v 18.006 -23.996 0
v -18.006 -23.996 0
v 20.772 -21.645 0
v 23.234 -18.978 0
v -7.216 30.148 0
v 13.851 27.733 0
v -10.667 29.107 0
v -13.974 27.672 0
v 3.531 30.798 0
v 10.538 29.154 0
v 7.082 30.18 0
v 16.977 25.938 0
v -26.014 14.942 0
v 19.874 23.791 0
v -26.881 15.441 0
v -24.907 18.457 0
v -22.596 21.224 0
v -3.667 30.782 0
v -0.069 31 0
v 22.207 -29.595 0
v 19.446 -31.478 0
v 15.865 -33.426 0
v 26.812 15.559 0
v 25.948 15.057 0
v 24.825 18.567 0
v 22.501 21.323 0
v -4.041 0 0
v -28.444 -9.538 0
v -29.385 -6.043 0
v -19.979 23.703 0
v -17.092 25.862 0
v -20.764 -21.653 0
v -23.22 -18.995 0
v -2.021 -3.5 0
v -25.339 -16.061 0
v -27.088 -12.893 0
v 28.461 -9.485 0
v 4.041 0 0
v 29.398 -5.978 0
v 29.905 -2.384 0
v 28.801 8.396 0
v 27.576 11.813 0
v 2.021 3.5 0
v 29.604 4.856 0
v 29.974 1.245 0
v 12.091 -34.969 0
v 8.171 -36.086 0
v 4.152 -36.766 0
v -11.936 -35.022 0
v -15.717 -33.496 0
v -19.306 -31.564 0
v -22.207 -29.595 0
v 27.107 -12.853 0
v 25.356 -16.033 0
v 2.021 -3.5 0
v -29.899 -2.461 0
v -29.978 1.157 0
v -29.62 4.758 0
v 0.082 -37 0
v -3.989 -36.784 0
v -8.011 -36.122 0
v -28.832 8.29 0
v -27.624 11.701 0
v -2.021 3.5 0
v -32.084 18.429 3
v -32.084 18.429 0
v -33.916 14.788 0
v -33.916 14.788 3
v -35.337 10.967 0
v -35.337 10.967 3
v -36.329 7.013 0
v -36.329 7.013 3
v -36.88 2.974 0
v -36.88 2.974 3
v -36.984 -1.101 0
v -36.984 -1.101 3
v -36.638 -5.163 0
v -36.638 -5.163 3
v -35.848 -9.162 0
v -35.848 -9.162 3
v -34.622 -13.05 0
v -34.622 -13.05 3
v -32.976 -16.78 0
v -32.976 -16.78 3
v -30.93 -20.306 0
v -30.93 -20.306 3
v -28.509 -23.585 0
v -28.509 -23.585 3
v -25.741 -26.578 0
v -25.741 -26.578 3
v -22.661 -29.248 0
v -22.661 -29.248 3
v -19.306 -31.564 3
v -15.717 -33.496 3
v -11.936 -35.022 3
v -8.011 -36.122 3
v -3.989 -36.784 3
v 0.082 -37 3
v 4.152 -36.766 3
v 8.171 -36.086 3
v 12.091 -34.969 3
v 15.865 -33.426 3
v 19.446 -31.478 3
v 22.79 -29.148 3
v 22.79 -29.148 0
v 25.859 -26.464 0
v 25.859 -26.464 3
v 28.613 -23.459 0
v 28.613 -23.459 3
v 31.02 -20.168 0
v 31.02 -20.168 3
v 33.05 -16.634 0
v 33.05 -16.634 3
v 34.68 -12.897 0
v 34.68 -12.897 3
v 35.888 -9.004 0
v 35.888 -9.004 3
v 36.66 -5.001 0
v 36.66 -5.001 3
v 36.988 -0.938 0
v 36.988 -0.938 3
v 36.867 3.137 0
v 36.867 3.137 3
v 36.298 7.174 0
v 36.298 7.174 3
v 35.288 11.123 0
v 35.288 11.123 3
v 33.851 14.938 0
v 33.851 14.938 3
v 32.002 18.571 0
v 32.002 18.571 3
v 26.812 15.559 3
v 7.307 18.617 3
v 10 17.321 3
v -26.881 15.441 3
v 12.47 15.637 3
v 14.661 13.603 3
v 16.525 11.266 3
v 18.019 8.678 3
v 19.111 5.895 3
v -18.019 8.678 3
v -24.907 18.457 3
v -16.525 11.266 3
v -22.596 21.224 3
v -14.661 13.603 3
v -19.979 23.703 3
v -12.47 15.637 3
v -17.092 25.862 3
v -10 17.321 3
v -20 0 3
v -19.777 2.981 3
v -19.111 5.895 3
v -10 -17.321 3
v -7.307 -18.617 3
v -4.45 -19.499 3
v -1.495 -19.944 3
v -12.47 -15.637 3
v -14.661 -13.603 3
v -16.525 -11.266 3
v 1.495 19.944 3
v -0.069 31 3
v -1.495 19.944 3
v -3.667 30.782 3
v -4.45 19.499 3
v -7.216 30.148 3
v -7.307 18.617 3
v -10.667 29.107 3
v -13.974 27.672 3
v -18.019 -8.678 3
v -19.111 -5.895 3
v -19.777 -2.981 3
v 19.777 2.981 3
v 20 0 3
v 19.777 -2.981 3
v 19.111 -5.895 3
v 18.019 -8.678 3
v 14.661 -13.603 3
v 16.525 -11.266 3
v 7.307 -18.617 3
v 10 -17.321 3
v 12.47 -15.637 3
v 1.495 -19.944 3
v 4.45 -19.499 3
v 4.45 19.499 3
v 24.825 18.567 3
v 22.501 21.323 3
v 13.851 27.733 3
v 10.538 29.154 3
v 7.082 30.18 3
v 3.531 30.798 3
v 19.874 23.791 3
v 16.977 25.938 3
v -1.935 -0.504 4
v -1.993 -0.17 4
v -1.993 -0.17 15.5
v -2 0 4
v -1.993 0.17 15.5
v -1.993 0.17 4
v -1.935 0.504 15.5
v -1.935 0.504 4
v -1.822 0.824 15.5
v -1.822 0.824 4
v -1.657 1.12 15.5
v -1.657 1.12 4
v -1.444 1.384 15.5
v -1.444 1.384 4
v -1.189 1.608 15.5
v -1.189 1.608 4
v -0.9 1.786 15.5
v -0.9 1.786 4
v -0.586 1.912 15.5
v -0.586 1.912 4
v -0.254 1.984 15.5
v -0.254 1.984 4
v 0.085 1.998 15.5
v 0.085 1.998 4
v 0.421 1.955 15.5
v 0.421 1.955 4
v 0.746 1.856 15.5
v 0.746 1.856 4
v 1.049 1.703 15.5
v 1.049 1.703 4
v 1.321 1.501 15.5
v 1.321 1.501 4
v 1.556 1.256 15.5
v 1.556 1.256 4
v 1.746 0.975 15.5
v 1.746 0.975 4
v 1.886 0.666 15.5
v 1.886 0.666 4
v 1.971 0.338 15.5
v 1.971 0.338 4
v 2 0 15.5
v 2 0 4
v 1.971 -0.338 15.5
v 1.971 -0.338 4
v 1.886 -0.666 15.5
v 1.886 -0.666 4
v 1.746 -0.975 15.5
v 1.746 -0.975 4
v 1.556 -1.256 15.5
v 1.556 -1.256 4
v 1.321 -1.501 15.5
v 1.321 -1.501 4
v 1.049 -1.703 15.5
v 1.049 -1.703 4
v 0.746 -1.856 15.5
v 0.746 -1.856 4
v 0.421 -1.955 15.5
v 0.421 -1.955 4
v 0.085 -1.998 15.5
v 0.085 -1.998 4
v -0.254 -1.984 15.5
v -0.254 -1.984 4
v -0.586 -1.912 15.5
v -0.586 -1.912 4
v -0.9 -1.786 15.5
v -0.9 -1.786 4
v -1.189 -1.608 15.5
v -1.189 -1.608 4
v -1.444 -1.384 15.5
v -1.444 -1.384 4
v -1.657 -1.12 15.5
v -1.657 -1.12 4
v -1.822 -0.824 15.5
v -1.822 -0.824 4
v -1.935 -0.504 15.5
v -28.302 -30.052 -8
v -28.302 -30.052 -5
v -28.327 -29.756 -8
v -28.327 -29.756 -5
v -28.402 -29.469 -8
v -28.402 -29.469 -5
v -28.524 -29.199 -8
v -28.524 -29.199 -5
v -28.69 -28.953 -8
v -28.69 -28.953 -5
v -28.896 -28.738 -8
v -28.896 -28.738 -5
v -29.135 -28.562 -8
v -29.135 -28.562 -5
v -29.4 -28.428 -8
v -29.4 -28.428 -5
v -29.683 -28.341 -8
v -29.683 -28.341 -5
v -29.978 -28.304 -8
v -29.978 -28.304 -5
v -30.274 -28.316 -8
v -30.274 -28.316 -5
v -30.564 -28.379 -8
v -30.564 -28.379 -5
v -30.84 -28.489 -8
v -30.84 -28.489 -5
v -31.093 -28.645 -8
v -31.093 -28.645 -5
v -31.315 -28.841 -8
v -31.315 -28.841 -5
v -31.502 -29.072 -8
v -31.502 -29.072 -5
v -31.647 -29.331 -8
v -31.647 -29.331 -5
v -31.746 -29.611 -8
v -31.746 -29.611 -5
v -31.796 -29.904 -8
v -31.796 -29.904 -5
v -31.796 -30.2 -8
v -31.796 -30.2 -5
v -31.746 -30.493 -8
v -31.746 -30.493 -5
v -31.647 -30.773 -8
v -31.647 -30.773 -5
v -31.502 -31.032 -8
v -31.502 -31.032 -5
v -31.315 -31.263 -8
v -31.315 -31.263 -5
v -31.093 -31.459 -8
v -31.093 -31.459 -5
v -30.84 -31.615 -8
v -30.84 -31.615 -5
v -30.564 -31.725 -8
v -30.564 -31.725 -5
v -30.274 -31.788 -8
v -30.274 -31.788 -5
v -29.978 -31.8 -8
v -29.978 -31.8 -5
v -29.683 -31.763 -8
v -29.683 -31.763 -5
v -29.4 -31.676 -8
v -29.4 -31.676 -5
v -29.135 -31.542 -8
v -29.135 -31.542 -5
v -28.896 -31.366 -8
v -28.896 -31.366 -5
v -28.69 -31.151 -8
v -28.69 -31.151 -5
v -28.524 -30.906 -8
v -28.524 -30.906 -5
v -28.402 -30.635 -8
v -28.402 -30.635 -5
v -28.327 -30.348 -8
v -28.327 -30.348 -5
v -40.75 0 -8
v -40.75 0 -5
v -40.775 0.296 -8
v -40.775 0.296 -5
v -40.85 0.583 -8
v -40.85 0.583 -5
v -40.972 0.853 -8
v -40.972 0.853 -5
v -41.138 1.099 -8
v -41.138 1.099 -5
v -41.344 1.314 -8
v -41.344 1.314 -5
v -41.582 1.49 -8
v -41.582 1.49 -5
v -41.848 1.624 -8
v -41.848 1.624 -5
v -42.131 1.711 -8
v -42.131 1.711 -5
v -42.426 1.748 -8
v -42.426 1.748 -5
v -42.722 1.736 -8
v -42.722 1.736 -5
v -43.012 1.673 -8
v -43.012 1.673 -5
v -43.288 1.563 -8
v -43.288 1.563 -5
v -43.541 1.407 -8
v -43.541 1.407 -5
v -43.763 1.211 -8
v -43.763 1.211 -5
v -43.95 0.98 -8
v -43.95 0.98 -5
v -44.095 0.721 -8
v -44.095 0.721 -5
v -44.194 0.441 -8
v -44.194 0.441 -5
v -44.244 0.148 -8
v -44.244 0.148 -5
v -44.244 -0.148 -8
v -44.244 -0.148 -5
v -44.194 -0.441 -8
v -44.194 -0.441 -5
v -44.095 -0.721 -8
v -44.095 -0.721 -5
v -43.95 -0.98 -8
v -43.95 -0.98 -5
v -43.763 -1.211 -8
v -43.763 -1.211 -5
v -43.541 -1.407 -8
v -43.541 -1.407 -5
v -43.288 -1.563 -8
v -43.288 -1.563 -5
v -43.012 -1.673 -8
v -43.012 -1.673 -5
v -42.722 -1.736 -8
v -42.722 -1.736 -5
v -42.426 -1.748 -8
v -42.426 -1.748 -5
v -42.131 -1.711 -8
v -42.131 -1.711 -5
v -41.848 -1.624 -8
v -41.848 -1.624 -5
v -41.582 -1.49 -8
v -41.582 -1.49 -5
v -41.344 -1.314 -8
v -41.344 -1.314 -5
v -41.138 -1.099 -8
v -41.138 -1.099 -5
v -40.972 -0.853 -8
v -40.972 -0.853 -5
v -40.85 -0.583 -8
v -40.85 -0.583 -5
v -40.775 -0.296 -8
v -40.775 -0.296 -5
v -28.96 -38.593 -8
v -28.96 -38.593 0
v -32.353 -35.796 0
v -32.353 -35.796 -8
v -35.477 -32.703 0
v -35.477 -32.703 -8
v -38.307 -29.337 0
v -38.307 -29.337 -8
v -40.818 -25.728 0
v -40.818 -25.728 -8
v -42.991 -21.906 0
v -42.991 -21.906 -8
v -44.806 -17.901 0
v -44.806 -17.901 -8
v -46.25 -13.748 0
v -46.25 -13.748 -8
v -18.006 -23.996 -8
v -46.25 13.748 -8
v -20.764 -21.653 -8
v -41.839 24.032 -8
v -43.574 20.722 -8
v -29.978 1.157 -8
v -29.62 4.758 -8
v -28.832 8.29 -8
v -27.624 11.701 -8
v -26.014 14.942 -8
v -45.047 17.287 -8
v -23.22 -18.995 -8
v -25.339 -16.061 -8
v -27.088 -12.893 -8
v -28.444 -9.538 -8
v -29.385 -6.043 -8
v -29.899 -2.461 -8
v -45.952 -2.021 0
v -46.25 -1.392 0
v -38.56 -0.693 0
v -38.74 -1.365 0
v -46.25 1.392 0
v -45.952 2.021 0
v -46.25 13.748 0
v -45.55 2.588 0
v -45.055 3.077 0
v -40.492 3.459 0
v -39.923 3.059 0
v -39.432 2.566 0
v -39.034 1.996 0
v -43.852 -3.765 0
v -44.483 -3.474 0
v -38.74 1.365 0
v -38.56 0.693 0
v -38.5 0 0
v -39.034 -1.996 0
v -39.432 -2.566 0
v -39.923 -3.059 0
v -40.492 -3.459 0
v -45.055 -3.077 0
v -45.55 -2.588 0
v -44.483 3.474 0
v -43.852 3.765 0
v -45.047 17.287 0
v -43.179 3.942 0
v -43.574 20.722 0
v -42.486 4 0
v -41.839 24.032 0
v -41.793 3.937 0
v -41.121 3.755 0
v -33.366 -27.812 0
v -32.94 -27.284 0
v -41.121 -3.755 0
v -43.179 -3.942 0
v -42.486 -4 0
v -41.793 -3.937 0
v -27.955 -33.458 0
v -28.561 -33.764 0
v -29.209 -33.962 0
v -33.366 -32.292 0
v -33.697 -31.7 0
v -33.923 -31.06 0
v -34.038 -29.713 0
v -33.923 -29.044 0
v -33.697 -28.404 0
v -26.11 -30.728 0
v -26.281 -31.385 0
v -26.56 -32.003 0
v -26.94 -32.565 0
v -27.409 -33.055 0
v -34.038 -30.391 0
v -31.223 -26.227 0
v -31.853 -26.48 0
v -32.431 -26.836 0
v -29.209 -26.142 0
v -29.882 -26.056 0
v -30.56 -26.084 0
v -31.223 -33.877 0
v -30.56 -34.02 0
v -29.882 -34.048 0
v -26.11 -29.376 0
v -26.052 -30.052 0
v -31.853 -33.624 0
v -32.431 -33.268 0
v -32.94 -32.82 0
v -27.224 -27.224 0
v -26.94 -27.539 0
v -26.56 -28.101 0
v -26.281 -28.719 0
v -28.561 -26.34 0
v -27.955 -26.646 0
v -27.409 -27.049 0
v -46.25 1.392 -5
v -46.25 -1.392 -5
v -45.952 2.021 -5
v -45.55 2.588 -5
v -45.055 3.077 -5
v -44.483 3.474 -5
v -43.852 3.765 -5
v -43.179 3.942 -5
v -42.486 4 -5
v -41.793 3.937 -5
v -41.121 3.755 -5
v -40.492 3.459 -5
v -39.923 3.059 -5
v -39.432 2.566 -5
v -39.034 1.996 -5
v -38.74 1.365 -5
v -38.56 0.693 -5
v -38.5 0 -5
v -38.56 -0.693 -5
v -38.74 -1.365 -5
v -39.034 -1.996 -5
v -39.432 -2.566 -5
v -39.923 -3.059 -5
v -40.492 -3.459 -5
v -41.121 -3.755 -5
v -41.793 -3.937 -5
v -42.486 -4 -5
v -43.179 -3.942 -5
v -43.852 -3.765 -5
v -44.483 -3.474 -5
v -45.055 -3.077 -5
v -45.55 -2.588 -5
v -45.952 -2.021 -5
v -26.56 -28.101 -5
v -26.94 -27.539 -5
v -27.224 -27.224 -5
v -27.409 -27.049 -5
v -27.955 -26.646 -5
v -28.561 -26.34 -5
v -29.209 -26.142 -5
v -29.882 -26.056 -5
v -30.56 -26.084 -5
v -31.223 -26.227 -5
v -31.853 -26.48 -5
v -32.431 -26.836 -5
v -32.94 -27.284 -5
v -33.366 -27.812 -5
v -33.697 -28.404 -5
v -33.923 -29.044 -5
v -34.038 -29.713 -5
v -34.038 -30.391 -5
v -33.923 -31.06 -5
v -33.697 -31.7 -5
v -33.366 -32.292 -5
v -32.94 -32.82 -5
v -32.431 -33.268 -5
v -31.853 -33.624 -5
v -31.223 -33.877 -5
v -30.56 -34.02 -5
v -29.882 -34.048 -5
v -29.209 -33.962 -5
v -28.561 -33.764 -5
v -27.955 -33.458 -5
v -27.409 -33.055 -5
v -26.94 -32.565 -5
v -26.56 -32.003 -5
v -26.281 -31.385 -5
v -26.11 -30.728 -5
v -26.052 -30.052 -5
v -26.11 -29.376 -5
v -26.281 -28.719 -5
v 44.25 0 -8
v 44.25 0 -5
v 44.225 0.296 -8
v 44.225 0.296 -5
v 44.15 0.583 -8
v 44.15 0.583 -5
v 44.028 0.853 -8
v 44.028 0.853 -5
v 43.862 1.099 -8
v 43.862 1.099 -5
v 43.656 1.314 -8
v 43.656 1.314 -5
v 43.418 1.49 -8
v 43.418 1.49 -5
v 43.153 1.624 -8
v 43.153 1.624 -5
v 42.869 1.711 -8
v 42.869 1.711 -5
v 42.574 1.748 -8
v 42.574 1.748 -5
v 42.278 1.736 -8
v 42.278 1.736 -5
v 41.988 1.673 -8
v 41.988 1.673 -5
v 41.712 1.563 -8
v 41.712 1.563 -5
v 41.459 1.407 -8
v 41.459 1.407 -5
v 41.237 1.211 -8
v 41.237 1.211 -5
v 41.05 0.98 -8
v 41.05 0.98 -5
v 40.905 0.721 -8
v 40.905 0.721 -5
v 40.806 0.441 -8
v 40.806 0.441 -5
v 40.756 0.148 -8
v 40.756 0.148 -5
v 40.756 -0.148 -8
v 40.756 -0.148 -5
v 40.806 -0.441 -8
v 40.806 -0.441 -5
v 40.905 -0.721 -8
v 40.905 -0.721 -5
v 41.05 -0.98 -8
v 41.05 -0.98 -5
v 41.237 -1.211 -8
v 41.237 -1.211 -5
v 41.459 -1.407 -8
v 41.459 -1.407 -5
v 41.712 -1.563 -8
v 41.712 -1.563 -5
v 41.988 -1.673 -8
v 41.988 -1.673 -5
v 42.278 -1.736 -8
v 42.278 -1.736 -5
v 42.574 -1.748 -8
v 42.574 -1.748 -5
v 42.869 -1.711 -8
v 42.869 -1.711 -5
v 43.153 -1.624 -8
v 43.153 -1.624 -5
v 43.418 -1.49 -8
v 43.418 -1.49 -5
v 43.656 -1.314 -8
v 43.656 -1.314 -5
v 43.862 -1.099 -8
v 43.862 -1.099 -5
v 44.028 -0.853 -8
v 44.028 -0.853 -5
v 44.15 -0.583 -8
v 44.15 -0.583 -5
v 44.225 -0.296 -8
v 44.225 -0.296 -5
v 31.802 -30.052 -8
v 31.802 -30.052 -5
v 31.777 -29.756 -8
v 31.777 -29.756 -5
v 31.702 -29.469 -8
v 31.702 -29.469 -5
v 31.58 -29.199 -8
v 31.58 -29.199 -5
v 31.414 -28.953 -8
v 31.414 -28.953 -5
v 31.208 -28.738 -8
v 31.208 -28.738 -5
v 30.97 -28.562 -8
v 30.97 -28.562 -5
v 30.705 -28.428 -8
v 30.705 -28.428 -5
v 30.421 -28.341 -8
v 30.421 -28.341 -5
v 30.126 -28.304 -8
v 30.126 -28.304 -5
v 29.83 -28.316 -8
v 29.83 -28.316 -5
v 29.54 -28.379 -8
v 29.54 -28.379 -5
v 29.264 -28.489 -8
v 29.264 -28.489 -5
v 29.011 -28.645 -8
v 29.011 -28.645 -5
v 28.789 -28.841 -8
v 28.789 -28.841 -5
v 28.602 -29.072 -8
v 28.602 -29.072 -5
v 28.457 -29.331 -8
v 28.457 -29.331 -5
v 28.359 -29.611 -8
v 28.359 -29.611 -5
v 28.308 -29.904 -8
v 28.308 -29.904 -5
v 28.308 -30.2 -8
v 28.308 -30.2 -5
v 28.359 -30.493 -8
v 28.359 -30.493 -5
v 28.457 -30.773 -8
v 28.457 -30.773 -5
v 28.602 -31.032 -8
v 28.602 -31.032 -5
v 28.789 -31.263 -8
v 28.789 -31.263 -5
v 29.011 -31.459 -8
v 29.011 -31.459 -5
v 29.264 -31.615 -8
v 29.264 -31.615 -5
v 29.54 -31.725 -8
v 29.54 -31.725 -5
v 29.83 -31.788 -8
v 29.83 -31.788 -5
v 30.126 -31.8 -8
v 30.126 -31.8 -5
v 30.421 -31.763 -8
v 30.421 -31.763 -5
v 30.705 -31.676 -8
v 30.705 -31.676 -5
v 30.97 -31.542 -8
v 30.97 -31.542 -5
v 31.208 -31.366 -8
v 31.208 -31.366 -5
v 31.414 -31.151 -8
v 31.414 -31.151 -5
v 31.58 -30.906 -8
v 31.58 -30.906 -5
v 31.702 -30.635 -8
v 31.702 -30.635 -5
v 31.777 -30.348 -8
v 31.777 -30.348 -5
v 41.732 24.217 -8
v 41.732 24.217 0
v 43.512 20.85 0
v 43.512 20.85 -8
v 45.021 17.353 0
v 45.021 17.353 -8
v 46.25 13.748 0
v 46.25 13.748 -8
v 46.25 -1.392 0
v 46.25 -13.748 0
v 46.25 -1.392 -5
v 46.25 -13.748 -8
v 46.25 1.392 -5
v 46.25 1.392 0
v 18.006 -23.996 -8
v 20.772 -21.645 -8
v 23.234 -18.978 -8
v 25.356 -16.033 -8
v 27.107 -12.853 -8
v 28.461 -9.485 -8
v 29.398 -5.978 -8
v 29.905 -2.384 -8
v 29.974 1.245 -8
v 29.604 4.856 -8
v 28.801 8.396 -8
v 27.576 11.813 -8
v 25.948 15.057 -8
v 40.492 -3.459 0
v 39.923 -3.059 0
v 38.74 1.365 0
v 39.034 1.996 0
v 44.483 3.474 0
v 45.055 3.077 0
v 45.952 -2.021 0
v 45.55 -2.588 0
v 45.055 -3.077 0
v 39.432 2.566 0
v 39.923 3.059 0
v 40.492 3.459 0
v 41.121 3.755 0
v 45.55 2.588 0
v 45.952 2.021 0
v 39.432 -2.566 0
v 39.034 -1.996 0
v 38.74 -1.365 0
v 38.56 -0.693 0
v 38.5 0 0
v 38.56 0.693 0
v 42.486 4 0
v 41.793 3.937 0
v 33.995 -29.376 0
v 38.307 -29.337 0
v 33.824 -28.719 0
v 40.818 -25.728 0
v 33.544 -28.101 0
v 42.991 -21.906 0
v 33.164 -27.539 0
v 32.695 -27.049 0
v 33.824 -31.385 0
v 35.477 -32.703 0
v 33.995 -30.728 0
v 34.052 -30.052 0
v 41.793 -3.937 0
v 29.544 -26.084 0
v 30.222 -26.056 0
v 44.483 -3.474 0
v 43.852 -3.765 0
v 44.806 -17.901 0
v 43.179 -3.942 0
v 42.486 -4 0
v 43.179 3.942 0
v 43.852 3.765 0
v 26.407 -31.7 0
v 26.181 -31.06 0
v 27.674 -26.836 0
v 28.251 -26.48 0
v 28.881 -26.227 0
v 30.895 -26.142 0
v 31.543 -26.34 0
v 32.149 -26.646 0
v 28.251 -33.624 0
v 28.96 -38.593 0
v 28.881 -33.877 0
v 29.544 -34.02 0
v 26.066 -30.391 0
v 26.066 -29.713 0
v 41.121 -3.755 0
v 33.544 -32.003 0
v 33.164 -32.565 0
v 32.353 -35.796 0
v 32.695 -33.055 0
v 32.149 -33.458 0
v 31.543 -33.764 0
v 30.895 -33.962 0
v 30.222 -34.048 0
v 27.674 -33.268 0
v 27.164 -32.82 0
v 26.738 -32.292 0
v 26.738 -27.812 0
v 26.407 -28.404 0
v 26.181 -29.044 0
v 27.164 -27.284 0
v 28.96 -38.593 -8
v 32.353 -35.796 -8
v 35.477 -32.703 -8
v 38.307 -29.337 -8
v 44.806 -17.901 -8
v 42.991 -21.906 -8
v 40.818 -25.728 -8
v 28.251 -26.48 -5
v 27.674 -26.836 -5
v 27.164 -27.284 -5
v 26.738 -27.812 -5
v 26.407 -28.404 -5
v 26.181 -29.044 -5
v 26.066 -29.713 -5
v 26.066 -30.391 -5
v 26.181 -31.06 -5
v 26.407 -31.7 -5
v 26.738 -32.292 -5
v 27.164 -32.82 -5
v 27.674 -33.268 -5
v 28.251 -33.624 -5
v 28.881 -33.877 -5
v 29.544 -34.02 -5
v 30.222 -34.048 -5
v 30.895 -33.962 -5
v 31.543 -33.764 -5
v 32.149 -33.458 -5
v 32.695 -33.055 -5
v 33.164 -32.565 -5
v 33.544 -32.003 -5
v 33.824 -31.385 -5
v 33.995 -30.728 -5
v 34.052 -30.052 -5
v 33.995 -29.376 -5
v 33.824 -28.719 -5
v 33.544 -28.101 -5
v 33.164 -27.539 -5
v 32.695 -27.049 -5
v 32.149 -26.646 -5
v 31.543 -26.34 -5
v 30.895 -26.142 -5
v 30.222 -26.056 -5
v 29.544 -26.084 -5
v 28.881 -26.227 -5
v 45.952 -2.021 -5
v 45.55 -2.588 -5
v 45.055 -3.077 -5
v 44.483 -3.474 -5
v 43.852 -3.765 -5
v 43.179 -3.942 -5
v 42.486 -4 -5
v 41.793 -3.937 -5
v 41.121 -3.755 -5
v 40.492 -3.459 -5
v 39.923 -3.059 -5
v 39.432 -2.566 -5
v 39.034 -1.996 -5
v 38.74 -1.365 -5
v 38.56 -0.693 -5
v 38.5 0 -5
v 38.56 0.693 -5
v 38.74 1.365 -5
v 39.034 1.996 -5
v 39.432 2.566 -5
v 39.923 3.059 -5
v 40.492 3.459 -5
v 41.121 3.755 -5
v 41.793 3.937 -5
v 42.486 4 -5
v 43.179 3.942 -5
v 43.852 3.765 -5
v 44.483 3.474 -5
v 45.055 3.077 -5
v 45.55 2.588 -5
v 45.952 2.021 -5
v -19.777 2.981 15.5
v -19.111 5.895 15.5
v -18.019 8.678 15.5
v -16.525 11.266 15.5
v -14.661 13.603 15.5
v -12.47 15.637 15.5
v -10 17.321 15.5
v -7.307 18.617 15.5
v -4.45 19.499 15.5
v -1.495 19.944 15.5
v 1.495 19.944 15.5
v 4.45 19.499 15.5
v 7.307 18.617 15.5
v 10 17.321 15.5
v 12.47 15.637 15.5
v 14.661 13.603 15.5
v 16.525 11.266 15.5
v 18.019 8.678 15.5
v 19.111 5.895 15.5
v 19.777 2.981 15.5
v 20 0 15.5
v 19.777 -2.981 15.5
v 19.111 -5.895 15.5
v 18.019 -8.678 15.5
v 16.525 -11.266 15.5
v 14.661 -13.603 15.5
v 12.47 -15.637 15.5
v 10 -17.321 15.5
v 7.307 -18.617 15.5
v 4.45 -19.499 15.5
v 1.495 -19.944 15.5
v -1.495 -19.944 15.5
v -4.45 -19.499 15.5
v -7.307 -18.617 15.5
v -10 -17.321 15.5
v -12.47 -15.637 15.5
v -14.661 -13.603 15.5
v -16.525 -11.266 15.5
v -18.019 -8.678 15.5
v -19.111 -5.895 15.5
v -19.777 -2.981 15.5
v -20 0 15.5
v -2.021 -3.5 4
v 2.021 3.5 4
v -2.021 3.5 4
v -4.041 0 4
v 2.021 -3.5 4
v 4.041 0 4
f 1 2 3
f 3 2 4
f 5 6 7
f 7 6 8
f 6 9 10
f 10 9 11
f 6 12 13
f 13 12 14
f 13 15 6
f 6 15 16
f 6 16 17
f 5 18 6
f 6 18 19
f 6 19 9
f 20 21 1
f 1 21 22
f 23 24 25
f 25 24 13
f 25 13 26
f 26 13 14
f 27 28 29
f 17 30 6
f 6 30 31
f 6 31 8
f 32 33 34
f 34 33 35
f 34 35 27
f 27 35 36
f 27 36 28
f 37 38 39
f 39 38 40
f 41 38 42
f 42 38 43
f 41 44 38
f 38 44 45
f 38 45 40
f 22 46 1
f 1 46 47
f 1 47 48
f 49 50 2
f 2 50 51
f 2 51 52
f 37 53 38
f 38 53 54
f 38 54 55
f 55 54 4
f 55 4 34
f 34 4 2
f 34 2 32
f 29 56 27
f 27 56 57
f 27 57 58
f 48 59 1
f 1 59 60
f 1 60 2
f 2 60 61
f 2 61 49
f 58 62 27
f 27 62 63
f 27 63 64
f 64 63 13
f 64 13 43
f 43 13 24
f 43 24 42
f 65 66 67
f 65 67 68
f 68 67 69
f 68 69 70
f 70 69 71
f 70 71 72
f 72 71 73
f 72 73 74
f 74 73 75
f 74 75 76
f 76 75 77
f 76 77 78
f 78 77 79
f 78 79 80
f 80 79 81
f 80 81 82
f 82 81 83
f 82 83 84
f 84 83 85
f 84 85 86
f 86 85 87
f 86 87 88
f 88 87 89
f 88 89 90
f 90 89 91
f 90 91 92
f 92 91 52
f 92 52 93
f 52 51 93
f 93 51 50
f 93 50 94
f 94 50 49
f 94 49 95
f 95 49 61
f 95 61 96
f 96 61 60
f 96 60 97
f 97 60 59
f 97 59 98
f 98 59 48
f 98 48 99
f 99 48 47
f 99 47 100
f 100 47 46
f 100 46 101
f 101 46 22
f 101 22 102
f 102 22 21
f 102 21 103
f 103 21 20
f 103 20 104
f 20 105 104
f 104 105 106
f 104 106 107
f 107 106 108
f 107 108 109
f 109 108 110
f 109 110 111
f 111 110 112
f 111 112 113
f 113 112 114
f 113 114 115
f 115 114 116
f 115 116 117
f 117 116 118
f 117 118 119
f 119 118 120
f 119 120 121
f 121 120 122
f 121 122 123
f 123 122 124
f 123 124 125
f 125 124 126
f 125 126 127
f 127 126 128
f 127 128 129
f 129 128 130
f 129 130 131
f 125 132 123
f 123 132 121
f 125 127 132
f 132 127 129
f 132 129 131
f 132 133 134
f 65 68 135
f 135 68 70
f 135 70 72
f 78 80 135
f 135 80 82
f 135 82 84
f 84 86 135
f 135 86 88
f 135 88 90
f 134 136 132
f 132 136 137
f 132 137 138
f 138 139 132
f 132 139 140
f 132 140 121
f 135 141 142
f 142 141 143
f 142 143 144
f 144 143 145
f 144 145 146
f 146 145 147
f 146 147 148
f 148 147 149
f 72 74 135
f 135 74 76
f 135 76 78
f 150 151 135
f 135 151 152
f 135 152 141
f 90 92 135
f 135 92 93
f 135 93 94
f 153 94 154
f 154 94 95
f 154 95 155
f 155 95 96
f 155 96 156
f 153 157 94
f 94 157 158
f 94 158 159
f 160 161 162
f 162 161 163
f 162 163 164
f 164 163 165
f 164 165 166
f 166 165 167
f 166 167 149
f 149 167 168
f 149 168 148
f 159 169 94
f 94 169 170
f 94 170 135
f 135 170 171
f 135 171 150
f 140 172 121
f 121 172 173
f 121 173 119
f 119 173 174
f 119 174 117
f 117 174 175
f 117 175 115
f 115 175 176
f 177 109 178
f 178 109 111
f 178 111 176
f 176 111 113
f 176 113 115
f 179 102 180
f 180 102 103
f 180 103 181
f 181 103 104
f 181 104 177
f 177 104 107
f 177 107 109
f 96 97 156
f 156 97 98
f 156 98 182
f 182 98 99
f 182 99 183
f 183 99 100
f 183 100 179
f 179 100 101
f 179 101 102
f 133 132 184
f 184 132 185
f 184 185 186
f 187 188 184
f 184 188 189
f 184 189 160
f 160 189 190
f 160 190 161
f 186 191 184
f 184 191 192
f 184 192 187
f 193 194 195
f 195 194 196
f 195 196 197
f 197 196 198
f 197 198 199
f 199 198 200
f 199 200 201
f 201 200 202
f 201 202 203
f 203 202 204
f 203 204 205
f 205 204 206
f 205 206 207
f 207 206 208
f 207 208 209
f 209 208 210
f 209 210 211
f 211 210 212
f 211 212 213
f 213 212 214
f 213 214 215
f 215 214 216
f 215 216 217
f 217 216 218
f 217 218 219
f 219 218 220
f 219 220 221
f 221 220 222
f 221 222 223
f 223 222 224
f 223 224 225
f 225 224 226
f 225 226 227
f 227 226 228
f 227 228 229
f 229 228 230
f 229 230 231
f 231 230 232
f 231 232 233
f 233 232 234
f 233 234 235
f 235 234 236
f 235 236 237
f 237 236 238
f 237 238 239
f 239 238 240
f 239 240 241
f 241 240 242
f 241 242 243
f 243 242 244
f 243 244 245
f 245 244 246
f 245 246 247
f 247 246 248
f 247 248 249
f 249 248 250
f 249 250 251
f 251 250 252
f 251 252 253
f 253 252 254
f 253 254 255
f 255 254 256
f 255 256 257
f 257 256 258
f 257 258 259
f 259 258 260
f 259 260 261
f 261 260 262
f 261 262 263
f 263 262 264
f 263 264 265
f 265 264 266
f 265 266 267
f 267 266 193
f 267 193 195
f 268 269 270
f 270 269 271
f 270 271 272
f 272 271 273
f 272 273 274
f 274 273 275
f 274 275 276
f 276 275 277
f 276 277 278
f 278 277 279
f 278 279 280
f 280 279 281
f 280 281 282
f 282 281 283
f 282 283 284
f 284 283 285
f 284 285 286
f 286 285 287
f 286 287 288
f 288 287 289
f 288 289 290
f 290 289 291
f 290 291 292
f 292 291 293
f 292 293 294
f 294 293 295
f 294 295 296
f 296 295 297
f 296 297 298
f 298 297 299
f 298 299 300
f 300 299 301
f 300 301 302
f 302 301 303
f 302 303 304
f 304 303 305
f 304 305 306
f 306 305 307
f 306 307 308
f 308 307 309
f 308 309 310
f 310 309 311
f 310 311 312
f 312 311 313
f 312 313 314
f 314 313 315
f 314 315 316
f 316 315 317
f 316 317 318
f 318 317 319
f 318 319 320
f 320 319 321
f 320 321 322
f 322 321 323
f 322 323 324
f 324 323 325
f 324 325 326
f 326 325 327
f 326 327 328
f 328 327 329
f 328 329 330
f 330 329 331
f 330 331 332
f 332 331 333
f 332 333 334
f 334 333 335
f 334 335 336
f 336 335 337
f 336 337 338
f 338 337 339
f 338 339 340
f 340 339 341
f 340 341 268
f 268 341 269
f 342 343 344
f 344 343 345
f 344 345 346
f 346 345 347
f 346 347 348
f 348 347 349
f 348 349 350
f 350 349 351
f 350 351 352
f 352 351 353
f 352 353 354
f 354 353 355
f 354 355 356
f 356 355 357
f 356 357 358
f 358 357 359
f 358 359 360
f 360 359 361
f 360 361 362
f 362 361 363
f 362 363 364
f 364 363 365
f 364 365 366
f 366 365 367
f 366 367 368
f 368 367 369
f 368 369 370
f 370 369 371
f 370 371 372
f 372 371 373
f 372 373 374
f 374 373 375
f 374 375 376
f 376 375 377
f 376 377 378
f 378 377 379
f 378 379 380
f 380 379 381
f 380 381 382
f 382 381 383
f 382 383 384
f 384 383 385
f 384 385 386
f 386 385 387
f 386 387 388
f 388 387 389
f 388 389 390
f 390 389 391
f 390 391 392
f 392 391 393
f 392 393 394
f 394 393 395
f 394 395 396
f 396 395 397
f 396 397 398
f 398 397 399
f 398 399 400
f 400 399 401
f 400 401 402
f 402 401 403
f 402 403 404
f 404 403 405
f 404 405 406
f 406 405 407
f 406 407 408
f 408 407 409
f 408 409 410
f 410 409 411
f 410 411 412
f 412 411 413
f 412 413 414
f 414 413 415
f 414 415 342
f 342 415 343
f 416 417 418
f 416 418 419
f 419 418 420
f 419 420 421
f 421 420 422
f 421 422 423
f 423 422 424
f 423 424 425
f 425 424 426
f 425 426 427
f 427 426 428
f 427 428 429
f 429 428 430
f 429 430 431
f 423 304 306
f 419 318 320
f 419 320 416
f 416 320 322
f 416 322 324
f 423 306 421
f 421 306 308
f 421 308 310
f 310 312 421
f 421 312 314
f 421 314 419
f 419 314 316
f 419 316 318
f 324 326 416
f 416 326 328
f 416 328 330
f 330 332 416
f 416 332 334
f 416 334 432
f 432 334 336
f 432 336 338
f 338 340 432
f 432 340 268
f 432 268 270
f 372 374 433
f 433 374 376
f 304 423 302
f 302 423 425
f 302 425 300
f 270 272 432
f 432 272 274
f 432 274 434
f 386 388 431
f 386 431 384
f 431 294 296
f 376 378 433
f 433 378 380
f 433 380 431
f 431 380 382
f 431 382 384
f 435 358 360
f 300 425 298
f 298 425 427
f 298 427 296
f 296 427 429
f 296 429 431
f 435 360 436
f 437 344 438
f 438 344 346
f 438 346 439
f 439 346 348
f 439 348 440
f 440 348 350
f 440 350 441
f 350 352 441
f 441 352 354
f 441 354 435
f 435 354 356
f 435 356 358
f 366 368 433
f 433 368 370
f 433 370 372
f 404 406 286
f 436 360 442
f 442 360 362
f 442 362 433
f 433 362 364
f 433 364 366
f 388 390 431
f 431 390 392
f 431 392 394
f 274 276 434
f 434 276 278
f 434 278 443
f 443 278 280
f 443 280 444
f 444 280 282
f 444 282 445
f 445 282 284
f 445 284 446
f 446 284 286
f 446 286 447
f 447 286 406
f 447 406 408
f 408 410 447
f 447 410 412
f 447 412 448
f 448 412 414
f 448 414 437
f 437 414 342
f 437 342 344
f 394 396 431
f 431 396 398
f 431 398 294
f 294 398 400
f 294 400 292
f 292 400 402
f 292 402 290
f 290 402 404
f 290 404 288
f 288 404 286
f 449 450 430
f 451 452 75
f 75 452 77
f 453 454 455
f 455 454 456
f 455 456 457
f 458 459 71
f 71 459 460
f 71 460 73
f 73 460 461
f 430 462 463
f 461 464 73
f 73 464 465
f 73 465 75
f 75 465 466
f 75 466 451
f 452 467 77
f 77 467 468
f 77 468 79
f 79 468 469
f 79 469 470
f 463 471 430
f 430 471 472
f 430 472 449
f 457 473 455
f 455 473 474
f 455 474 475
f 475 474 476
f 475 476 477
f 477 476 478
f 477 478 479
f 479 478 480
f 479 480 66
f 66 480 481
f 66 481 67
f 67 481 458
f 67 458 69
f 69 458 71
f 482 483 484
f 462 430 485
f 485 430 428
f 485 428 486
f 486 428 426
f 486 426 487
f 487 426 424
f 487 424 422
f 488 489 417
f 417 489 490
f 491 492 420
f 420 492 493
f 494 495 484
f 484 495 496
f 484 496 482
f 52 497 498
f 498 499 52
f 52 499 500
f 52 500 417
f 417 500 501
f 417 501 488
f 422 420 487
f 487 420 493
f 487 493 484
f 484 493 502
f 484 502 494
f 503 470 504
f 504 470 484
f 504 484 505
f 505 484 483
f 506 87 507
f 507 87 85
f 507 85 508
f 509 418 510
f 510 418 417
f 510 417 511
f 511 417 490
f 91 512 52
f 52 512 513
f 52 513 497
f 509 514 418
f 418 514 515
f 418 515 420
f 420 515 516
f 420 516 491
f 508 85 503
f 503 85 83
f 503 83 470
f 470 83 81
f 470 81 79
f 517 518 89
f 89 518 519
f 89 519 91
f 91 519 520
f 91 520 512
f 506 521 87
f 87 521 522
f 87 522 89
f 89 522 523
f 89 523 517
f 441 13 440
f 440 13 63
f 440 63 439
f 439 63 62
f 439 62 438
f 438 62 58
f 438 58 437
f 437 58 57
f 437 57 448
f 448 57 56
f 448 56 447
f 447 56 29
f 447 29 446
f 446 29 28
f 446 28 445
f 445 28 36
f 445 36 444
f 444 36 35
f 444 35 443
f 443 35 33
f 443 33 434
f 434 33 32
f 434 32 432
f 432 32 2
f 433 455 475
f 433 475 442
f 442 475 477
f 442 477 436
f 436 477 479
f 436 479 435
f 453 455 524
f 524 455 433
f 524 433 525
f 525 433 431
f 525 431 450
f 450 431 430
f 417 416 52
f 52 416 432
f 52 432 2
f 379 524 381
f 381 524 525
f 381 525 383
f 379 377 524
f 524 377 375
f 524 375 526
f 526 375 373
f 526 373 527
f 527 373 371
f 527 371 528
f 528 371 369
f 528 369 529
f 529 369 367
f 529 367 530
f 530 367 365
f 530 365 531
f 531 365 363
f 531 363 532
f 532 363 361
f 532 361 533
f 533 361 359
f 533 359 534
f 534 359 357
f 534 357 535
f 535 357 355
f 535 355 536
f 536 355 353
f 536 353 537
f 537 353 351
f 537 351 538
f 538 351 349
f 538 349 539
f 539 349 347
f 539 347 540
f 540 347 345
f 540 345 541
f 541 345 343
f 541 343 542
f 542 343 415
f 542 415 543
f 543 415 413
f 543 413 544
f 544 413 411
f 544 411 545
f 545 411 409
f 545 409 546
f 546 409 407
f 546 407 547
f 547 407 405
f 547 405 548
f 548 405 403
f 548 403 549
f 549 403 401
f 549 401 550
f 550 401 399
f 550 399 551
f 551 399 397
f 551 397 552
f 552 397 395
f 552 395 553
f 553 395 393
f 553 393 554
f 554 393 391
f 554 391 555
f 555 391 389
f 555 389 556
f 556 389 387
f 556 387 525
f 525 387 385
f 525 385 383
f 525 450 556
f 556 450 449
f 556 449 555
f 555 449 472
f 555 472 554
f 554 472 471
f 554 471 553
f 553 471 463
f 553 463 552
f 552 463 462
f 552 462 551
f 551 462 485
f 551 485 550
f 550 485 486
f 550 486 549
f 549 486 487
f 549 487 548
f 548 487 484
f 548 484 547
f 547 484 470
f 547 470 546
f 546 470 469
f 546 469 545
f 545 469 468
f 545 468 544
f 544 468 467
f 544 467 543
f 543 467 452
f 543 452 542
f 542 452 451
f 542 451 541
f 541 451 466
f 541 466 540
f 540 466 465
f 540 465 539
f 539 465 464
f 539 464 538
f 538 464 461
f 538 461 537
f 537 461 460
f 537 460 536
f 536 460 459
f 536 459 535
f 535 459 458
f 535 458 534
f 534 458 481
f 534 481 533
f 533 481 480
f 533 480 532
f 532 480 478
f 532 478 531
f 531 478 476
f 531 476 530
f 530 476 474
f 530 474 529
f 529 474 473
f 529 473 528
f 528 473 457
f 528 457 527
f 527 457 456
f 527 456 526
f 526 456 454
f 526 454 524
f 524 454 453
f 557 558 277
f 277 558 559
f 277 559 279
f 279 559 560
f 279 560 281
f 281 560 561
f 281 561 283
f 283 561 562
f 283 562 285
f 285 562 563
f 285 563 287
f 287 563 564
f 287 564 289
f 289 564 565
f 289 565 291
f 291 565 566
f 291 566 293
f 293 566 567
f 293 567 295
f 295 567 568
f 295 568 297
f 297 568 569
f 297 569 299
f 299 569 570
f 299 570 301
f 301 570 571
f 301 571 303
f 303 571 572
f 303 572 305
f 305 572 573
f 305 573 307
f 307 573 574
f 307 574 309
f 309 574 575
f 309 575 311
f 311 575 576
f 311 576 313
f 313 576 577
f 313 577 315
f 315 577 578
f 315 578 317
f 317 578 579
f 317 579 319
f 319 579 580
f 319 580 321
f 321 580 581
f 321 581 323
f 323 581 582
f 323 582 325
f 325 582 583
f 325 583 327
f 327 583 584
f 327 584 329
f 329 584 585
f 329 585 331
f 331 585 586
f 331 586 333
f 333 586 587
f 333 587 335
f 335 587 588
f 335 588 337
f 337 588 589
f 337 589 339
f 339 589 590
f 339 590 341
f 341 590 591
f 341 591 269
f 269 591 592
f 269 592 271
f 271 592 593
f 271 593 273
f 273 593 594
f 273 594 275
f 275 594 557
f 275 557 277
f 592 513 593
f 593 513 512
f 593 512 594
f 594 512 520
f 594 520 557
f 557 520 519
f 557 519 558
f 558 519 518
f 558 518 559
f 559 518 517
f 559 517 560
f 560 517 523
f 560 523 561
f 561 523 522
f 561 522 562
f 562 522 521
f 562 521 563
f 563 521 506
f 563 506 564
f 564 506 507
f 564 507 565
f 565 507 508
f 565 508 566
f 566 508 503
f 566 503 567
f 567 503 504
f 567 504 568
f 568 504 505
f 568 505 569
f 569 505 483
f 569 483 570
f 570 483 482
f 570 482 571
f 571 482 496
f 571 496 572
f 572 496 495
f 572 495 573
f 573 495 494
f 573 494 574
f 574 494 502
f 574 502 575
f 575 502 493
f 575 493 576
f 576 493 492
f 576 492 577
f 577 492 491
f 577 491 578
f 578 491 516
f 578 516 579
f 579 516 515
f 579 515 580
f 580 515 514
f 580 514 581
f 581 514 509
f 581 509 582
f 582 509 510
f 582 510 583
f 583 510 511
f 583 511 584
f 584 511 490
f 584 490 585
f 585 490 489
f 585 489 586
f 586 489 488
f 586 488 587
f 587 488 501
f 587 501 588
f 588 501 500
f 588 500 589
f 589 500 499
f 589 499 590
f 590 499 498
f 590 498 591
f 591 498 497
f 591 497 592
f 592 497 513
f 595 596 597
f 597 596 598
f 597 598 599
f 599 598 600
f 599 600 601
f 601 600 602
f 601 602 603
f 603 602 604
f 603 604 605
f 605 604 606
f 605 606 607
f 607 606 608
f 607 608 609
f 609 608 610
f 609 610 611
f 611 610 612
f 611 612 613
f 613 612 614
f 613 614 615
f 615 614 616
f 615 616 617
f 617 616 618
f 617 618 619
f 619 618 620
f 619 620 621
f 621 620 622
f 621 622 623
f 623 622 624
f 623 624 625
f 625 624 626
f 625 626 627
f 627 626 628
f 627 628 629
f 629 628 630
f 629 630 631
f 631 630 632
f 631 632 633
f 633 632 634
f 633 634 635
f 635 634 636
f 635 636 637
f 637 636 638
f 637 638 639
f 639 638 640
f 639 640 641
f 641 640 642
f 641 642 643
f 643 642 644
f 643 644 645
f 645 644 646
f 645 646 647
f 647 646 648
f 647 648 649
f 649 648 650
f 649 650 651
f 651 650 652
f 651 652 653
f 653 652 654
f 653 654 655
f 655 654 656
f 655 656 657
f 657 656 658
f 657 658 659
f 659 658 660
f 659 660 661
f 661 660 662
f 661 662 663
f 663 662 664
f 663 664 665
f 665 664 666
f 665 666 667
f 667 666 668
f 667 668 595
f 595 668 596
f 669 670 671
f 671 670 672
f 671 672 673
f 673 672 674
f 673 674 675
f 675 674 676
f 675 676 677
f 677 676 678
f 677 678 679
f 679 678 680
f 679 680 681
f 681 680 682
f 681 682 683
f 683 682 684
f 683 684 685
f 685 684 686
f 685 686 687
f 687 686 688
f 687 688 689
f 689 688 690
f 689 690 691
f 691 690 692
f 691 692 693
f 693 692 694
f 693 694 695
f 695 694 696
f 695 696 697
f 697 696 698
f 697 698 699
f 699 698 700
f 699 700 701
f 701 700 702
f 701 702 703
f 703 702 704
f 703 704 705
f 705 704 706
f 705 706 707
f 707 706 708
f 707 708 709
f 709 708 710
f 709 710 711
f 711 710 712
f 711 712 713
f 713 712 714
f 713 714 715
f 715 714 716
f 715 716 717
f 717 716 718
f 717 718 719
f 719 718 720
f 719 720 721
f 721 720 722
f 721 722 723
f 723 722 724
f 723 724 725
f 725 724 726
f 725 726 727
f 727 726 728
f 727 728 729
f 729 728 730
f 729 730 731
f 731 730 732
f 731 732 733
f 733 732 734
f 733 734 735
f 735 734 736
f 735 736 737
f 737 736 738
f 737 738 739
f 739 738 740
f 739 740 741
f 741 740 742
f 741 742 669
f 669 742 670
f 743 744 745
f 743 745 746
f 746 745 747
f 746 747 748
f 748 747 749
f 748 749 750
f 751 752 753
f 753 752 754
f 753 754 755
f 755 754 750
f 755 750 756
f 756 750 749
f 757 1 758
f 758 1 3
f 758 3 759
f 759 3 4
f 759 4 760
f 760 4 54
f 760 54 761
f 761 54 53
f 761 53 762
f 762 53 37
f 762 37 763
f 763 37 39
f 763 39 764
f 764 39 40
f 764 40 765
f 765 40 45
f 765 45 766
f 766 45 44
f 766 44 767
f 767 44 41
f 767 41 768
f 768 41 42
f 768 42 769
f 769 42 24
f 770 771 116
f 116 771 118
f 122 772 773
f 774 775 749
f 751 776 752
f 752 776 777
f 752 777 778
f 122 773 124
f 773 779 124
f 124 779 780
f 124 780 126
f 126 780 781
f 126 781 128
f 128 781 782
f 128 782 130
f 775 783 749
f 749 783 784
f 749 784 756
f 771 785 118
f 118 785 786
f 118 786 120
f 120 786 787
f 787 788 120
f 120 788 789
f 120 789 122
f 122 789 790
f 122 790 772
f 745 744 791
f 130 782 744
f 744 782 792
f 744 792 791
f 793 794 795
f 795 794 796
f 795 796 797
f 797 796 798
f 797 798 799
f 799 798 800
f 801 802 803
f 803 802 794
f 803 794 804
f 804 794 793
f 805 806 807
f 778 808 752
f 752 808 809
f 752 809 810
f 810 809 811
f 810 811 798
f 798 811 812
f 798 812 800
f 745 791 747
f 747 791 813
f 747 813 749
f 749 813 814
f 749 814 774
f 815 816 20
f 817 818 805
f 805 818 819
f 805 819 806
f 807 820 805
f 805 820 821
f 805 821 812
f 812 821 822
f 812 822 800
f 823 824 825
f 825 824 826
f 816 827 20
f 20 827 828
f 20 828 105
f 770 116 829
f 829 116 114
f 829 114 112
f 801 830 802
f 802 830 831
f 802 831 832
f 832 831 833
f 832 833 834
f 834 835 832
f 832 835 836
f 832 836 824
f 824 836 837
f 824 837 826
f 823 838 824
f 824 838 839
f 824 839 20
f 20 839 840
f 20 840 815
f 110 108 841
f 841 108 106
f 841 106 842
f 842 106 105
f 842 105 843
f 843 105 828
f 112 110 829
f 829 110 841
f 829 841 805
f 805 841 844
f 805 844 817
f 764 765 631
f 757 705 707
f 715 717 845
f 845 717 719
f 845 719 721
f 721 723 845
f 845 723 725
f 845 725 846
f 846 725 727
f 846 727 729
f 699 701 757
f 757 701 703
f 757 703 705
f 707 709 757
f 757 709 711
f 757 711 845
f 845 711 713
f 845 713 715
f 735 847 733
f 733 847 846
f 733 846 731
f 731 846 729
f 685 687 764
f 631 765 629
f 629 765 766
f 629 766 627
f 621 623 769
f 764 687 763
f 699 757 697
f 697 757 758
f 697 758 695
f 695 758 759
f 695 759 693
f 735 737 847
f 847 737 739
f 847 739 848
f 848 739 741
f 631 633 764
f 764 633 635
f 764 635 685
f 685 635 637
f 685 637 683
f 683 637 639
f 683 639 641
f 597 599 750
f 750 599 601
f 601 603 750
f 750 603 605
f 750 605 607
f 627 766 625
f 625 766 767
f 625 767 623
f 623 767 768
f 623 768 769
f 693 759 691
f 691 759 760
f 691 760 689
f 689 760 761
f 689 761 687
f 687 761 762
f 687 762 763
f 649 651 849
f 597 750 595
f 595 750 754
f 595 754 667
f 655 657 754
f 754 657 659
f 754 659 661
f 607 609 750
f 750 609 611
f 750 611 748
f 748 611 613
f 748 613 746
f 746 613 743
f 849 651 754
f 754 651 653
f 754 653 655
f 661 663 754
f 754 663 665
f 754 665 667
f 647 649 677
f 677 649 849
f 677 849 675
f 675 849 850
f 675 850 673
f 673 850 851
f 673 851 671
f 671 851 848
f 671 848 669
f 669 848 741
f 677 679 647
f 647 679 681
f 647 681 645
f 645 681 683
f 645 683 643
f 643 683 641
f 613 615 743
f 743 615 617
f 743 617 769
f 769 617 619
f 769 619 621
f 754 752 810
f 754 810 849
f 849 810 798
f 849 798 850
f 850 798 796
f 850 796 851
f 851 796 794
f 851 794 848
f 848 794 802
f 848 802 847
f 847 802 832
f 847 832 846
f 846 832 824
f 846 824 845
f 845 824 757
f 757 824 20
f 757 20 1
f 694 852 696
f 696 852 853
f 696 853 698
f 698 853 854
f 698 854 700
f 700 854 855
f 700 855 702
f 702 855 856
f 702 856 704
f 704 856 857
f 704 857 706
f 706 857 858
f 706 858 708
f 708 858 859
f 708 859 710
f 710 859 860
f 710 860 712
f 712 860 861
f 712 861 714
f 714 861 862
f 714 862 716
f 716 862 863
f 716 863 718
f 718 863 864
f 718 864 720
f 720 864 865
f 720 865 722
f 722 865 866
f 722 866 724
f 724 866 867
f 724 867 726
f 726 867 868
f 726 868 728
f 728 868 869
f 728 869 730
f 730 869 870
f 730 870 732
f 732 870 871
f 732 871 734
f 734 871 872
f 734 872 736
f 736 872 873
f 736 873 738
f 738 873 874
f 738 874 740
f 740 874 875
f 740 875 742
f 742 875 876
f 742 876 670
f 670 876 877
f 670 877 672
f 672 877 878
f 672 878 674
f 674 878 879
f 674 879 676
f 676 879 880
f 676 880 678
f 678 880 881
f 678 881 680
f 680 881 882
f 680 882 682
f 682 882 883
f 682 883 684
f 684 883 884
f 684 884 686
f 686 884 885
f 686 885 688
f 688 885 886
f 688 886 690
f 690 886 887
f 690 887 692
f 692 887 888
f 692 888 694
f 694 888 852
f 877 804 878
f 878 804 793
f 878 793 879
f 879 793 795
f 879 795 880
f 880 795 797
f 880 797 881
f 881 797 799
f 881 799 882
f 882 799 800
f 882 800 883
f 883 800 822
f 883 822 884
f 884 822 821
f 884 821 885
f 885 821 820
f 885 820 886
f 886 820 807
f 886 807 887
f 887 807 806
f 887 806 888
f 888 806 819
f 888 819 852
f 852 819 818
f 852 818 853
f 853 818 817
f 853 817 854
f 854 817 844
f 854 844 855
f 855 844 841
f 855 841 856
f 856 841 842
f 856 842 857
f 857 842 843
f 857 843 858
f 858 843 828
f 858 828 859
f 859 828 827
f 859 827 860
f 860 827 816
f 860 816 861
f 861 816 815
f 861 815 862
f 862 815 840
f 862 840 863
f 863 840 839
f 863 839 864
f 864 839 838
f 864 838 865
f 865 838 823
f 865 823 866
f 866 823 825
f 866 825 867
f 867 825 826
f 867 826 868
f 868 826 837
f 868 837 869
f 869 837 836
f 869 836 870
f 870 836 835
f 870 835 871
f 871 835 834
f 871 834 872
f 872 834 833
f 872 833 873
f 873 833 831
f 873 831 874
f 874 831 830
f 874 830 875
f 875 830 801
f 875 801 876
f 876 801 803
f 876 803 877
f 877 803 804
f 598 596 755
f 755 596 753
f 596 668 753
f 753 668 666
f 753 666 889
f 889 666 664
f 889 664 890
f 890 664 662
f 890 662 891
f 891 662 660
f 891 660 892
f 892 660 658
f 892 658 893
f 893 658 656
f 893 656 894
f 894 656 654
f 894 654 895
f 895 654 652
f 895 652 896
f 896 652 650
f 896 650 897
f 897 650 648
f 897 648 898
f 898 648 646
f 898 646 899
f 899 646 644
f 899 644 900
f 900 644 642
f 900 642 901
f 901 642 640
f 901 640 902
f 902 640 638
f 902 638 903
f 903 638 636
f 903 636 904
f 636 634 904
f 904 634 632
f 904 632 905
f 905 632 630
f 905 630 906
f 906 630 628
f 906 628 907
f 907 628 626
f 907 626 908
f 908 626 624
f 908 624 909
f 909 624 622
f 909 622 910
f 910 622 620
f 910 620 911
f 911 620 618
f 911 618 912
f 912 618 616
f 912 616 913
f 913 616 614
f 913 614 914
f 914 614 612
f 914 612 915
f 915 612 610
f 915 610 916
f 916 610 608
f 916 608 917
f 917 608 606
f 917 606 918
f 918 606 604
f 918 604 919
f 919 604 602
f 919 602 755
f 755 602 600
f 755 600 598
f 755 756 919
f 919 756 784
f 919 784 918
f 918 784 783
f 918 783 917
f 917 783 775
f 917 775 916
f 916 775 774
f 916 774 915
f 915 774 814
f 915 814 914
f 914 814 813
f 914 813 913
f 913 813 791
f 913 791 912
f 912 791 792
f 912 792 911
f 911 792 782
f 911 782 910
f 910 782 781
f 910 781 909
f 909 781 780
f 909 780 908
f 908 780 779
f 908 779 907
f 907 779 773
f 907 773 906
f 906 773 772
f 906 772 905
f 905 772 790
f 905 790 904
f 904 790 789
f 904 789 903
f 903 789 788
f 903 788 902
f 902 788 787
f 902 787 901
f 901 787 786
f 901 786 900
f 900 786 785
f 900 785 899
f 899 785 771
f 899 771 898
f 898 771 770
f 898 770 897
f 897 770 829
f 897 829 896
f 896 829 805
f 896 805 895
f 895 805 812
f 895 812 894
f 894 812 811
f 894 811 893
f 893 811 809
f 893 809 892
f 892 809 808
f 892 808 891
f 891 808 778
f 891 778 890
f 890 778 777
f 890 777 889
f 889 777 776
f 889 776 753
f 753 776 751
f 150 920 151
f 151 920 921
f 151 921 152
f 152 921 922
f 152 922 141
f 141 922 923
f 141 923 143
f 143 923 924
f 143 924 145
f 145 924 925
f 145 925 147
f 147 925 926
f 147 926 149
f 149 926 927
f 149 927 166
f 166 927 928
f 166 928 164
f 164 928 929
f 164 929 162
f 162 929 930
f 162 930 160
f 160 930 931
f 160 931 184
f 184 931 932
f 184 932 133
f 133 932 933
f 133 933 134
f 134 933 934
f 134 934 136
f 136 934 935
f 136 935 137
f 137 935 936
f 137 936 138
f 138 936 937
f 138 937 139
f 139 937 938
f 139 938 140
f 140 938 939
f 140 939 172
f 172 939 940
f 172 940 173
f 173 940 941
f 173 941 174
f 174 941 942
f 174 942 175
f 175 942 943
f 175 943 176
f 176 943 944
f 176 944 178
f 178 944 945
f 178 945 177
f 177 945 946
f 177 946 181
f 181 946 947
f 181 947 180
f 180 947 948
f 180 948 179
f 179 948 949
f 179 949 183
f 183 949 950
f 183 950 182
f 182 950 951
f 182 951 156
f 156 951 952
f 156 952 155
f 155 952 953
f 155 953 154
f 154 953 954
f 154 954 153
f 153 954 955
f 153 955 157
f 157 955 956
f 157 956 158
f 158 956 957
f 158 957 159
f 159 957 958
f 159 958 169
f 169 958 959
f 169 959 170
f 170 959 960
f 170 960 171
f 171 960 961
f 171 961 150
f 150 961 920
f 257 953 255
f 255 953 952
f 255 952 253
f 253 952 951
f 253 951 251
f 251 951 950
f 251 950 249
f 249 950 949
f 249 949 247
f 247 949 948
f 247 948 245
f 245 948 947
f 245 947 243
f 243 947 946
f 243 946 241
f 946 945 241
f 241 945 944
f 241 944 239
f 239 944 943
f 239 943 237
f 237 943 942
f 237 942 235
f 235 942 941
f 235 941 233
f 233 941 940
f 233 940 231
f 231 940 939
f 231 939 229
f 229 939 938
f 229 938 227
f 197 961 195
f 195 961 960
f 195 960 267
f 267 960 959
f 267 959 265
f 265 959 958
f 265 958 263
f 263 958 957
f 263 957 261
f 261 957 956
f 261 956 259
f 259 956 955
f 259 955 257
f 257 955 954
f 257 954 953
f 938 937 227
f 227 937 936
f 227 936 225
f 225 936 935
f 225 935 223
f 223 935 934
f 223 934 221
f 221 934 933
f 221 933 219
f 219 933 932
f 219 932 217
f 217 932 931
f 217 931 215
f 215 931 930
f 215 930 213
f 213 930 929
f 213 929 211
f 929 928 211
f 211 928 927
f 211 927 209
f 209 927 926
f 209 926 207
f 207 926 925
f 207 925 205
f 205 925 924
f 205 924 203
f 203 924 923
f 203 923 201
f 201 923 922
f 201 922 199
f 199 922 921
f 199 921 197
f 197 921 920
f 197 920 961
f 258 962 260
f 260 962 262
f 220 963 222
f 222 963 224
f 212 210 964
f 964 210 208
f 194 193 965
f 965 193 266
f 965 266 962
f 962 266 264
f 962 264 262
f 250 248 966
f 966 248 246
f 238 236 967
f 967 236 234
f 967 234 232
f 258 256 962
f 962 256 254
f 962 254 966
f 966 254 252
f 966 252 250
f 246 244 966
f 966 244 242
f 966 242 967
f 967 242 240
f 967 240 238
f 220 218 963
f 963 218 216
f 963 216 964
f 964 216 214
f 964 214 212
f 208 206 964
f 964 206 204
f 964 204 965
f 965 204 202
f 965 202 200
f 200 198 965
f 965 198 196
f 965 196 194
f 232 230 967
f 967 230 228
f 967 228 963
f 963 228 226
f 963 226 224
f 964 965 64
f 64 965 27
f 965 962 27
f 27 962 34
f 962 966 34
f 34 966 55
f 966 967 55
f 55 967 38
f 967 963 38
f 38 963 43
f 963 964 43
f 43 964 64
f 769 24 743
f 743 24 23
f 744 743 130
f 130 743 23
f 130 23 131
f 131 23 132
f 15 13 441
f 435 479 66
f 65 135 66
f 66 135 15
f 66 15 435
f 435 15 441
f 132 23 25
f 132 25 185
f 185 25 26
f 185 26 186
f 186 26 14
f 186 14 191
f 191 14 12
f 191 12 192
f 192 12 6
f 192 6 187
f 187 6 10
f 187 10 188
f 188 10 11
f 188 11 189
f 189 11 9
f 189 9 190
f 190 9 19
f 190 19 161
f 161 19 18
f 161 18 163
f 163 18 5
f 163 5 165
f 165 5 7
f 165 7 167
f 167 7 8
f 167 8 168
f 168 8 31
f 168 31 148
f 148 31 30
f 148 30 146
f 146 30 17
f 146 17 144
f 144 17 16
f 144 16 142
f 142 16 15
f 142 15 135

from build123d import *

# Parameters (mm, degrees)
SKETCH1_R           = 48.25
BOSS_EXTRUDE1_DEPTH = 8
SKETCH2_W           = 17.162038191
SKETCH2_H           = 56.822210482
SKETCH2_W_2         = 16.152506533
SKETCH2_H_2         = 65.186901365
CUT_EXTRUDE1_DEPTH  = 8
SKETCH3_R           = 30
CUT_EXTRUDE2_DEPTH  = 8
SKETCH4_R           = 1.75
CUT_EXTRUDE3_DEPTH  = 10
CIRPATTERN1_COUNT   = 8
CUT_EXTRUDE4_DEPTH  = 10
CIRPATTERN2_COUNT   = 2
SKETCH9_R           = 4
CUT_EXTRUDE5_DEPTH  = 5
CIRPATTERN3_COUNT   = 8
SKETCH10_R          = 4
CUT_EXTRUDE6_DEPTH  = 5
SKETCH11_R          = 37
BOSS_EXTRUDE2_DEPTH = 3
SKETCH12_R          = 20
BOSS_EXTRUDE3_DEPTH = 12.5
SKETCH13_R          = 2
CUT_EXTRUDE8_DEPTH  = 38
CUT_EXTRUDE9_DEPTH  = 4
CUT_EXTRUDE10_DEPTH = 10
CUT_EXTRUDE11_START = 14
CUT_EXTRUDE11_DEPTH = 14


with BuildPart() as part:
    # Sketch1 → Boss-Extrude1 (new body)
    with BuildSketch(Plane.XY):
        Circle(SKETCH1_R)
    extrude(amount=-BOSS_EXTRUDE1_DEPTH)

    # Sketch2 → Cut-Extrude1 (cut)
    with BuildSketch(Plane.XY):
        with Locations((-54.831019095, 0)):
            Rectangle(SKETCH2_W, SKETCH2_H)
        with Locations((54.326253267, -4.182345442)):
            Rectangle(SKETCH2_W_2, SKETCH2_H_2)
    extrude(amount=-CUT_EXTRUDE1_DEPTH, mode=Mode.SUBTRACT)

    # Sketch3 → Cut-Extrude2 (cut)
    with BuildSketch(Plane.XY):
        Circle(SKETCH3_R)
    extrude(amount=-CUT_EXTRUDE2_DEPTH, mode=Mode.SUBTRACT)

    # Sketch4 → Cut-Extrude3 (cut)
    with BuildSketch(Plane.XY):
        with Locations((-42.5, 0)):
            Circle(SKETCH4_R)
    cut_extrude3 = extrude(amount=-CUT_EXTRUDE3_DEPTH, mode=Mode.SUBTRACT)

    # CirPattern1: Cut-Extrude3 ×8 about axis
    cirpattern1_axis = Axis((0, 0, 0), (0, 0, 1))
    for i in range(1, CIRPATTERN1_COUNT):
        add(cut_extrude3.rotate(cirpattern1_axis, i * 360 / CIRPATTERN1_COUNT), mode=Mode.SUBTRACT)

    # Sketch8 → Cut-Extrude4 (cut)
    with BuildSketch(Plane.XY):
        with BuildLine():
            Line((-28.959547499, 38.59283753), (0, 0))
            Line((0, 0), (28.959547499, 38.59283753))
            ThreePointArc((28.959547499, 38.59283753), (0, 48.25), (-28.959547499, 38.59283753))
        make_face()
    cut_extrude4 = extrude(amount=-CUT_EXTRUDE4_DEPTH, mode=Mode.SUBTRACT)

    # CirPattern2: Cut-Extrude4 ×2 about axis
    cirpattern2_axis = Axis((0, 0, 0), (0, 0, 1))
    for i in range(1, CIRPATTERN2_COUNT):
        add(cut_extrude4.rotate(cirpattern2_axis, i * 360 / CIRPATTERN2_COUNT), mode=Mode.SUBTRACT)

    # Sketch9 → Cut-Extrude5 (cut)
    with BuildSketch(Plane.XY):
        with Locations((-42.5, 0)):
            Circle(SKETCH9_R)
    cut_extrude5 = extrude(amount=-CUT_EXTRUDE5_DEPTH, mode=Mode.SUBTRACT)

    # CirPattern3: Cut-Extrude5 ×8 about axis, 3 skipped
    cirpattern3_axis = Axis((0, 0, 0), (0, 0, 1))
    add([cut_extrude5.rotate(cirpattern3_axis, i * 360 / CIRPATTERN3_COUNT) for i in range(1, CIRPATTERN3_COUNT) if i not in (3, 4, 5)], mode=Mode.SUBTRACT)

    # Sketch10 → Cut-Extrude6 (cut)
    with BuildSketch(Plane.XY):
        with Locations((42.5, 0)):
            Circle(SKETCH10_R)
        with Locations((30.0520382, 30.0520382)):
            Circle(SKETCH10_R)
        with Locations((30.0520382, -30.0520382)):
            Circle(SKETCH10_R)
    extrude(amount=-CUT_EXTRUDE6_DEPTH, mode=Mode.SUBTRACT)

    # Sketch11 → Boss-Extrude2 (add)
    with BuildSketch(Plane.XY):
        with Locations(Location((0, 0, 0), (0, 0, 126.884070759))):
            Circle(SKETCH11_R)
    extrude(amount=BOSS_EXTRUDE2_DEPTH)

    # Sketch12 → Boss-Extrude3 (add)
    with BuildSketch(Plane.XY.offset(3)):
        Circle(SKETCH12_R)
    extrude(amount=BOSS_EXTRUDE3_DEPTH)

    # Sketch13 → Cut-Extrude8 (cut)
    with BuildSketch(Plane.XY.offset(15.5)):
        Circle(SKETCH13_R)
    extrude(amount=-CUT_EXTRUDE8_DEPTH, mode=Mode.SUBTRACT)

    # Sketch14 → Cut-Extrude9 (cut)
    with BuildSketch(Plane(origin=(0, 0, 0), x_dir=(-1, 0, 0), z_dir=(0, 0, -1))):
        Polygon((-2.020725942, -3.5), (2.020725942, -3.5), (4.041451884, 0), (2.020725942, 3.5), (-2.020725942, 3.5), (-4.041451884, 0), align=None)
    extrude(amount=-CUT_EXTRUDE9_DEPTH, mode=Mode.SUBTRACT)

    # Sketch15 → Cut-Extrude10 (cut)
    with BuildSketch(Plane.XY):
        with BuildLine():
            Line((-41.839011718, 24.03246967), (0, 0))
            Line((0, 0), (41.732235109, 24.217412182))
            ThreePointArc((41.732235109, 24.217412182), (-0.106776609, 48.249881852), (-41.839011718, 24.03246967))
        make_face()
    extrude(amount=-CUT_EXTRUDE10_DEPTH, mode=Mode.SUBTRACT)

    # Sketch16 → Cut-Extrude11 (cut)
    with BuildSketch(Plane.XY.offset(CUT_EXTRUDE11_START)):
        with BuildLine():
            Line((-41.839011718, 24.03246967), (-26.881023073, 15.440550462))
            ThreePointArc((-26.881023073, 15.440550462), (-0.068602588, 30.999924092), (26.812420485, 15.55937363))
            Line((26.812420485, 15.55937363), (41.732235109, 24.217412182))
            ThreePointArc((41.732235109, 24.217412182), (-0.106776609, 48.249881852), (-41.839011718, 24.03246967))
        make_face()
    extrude(amount=-CUT_EXTRUDE11_DEPTH, mode=Mode.SUBTRACT)


solid = part.part
